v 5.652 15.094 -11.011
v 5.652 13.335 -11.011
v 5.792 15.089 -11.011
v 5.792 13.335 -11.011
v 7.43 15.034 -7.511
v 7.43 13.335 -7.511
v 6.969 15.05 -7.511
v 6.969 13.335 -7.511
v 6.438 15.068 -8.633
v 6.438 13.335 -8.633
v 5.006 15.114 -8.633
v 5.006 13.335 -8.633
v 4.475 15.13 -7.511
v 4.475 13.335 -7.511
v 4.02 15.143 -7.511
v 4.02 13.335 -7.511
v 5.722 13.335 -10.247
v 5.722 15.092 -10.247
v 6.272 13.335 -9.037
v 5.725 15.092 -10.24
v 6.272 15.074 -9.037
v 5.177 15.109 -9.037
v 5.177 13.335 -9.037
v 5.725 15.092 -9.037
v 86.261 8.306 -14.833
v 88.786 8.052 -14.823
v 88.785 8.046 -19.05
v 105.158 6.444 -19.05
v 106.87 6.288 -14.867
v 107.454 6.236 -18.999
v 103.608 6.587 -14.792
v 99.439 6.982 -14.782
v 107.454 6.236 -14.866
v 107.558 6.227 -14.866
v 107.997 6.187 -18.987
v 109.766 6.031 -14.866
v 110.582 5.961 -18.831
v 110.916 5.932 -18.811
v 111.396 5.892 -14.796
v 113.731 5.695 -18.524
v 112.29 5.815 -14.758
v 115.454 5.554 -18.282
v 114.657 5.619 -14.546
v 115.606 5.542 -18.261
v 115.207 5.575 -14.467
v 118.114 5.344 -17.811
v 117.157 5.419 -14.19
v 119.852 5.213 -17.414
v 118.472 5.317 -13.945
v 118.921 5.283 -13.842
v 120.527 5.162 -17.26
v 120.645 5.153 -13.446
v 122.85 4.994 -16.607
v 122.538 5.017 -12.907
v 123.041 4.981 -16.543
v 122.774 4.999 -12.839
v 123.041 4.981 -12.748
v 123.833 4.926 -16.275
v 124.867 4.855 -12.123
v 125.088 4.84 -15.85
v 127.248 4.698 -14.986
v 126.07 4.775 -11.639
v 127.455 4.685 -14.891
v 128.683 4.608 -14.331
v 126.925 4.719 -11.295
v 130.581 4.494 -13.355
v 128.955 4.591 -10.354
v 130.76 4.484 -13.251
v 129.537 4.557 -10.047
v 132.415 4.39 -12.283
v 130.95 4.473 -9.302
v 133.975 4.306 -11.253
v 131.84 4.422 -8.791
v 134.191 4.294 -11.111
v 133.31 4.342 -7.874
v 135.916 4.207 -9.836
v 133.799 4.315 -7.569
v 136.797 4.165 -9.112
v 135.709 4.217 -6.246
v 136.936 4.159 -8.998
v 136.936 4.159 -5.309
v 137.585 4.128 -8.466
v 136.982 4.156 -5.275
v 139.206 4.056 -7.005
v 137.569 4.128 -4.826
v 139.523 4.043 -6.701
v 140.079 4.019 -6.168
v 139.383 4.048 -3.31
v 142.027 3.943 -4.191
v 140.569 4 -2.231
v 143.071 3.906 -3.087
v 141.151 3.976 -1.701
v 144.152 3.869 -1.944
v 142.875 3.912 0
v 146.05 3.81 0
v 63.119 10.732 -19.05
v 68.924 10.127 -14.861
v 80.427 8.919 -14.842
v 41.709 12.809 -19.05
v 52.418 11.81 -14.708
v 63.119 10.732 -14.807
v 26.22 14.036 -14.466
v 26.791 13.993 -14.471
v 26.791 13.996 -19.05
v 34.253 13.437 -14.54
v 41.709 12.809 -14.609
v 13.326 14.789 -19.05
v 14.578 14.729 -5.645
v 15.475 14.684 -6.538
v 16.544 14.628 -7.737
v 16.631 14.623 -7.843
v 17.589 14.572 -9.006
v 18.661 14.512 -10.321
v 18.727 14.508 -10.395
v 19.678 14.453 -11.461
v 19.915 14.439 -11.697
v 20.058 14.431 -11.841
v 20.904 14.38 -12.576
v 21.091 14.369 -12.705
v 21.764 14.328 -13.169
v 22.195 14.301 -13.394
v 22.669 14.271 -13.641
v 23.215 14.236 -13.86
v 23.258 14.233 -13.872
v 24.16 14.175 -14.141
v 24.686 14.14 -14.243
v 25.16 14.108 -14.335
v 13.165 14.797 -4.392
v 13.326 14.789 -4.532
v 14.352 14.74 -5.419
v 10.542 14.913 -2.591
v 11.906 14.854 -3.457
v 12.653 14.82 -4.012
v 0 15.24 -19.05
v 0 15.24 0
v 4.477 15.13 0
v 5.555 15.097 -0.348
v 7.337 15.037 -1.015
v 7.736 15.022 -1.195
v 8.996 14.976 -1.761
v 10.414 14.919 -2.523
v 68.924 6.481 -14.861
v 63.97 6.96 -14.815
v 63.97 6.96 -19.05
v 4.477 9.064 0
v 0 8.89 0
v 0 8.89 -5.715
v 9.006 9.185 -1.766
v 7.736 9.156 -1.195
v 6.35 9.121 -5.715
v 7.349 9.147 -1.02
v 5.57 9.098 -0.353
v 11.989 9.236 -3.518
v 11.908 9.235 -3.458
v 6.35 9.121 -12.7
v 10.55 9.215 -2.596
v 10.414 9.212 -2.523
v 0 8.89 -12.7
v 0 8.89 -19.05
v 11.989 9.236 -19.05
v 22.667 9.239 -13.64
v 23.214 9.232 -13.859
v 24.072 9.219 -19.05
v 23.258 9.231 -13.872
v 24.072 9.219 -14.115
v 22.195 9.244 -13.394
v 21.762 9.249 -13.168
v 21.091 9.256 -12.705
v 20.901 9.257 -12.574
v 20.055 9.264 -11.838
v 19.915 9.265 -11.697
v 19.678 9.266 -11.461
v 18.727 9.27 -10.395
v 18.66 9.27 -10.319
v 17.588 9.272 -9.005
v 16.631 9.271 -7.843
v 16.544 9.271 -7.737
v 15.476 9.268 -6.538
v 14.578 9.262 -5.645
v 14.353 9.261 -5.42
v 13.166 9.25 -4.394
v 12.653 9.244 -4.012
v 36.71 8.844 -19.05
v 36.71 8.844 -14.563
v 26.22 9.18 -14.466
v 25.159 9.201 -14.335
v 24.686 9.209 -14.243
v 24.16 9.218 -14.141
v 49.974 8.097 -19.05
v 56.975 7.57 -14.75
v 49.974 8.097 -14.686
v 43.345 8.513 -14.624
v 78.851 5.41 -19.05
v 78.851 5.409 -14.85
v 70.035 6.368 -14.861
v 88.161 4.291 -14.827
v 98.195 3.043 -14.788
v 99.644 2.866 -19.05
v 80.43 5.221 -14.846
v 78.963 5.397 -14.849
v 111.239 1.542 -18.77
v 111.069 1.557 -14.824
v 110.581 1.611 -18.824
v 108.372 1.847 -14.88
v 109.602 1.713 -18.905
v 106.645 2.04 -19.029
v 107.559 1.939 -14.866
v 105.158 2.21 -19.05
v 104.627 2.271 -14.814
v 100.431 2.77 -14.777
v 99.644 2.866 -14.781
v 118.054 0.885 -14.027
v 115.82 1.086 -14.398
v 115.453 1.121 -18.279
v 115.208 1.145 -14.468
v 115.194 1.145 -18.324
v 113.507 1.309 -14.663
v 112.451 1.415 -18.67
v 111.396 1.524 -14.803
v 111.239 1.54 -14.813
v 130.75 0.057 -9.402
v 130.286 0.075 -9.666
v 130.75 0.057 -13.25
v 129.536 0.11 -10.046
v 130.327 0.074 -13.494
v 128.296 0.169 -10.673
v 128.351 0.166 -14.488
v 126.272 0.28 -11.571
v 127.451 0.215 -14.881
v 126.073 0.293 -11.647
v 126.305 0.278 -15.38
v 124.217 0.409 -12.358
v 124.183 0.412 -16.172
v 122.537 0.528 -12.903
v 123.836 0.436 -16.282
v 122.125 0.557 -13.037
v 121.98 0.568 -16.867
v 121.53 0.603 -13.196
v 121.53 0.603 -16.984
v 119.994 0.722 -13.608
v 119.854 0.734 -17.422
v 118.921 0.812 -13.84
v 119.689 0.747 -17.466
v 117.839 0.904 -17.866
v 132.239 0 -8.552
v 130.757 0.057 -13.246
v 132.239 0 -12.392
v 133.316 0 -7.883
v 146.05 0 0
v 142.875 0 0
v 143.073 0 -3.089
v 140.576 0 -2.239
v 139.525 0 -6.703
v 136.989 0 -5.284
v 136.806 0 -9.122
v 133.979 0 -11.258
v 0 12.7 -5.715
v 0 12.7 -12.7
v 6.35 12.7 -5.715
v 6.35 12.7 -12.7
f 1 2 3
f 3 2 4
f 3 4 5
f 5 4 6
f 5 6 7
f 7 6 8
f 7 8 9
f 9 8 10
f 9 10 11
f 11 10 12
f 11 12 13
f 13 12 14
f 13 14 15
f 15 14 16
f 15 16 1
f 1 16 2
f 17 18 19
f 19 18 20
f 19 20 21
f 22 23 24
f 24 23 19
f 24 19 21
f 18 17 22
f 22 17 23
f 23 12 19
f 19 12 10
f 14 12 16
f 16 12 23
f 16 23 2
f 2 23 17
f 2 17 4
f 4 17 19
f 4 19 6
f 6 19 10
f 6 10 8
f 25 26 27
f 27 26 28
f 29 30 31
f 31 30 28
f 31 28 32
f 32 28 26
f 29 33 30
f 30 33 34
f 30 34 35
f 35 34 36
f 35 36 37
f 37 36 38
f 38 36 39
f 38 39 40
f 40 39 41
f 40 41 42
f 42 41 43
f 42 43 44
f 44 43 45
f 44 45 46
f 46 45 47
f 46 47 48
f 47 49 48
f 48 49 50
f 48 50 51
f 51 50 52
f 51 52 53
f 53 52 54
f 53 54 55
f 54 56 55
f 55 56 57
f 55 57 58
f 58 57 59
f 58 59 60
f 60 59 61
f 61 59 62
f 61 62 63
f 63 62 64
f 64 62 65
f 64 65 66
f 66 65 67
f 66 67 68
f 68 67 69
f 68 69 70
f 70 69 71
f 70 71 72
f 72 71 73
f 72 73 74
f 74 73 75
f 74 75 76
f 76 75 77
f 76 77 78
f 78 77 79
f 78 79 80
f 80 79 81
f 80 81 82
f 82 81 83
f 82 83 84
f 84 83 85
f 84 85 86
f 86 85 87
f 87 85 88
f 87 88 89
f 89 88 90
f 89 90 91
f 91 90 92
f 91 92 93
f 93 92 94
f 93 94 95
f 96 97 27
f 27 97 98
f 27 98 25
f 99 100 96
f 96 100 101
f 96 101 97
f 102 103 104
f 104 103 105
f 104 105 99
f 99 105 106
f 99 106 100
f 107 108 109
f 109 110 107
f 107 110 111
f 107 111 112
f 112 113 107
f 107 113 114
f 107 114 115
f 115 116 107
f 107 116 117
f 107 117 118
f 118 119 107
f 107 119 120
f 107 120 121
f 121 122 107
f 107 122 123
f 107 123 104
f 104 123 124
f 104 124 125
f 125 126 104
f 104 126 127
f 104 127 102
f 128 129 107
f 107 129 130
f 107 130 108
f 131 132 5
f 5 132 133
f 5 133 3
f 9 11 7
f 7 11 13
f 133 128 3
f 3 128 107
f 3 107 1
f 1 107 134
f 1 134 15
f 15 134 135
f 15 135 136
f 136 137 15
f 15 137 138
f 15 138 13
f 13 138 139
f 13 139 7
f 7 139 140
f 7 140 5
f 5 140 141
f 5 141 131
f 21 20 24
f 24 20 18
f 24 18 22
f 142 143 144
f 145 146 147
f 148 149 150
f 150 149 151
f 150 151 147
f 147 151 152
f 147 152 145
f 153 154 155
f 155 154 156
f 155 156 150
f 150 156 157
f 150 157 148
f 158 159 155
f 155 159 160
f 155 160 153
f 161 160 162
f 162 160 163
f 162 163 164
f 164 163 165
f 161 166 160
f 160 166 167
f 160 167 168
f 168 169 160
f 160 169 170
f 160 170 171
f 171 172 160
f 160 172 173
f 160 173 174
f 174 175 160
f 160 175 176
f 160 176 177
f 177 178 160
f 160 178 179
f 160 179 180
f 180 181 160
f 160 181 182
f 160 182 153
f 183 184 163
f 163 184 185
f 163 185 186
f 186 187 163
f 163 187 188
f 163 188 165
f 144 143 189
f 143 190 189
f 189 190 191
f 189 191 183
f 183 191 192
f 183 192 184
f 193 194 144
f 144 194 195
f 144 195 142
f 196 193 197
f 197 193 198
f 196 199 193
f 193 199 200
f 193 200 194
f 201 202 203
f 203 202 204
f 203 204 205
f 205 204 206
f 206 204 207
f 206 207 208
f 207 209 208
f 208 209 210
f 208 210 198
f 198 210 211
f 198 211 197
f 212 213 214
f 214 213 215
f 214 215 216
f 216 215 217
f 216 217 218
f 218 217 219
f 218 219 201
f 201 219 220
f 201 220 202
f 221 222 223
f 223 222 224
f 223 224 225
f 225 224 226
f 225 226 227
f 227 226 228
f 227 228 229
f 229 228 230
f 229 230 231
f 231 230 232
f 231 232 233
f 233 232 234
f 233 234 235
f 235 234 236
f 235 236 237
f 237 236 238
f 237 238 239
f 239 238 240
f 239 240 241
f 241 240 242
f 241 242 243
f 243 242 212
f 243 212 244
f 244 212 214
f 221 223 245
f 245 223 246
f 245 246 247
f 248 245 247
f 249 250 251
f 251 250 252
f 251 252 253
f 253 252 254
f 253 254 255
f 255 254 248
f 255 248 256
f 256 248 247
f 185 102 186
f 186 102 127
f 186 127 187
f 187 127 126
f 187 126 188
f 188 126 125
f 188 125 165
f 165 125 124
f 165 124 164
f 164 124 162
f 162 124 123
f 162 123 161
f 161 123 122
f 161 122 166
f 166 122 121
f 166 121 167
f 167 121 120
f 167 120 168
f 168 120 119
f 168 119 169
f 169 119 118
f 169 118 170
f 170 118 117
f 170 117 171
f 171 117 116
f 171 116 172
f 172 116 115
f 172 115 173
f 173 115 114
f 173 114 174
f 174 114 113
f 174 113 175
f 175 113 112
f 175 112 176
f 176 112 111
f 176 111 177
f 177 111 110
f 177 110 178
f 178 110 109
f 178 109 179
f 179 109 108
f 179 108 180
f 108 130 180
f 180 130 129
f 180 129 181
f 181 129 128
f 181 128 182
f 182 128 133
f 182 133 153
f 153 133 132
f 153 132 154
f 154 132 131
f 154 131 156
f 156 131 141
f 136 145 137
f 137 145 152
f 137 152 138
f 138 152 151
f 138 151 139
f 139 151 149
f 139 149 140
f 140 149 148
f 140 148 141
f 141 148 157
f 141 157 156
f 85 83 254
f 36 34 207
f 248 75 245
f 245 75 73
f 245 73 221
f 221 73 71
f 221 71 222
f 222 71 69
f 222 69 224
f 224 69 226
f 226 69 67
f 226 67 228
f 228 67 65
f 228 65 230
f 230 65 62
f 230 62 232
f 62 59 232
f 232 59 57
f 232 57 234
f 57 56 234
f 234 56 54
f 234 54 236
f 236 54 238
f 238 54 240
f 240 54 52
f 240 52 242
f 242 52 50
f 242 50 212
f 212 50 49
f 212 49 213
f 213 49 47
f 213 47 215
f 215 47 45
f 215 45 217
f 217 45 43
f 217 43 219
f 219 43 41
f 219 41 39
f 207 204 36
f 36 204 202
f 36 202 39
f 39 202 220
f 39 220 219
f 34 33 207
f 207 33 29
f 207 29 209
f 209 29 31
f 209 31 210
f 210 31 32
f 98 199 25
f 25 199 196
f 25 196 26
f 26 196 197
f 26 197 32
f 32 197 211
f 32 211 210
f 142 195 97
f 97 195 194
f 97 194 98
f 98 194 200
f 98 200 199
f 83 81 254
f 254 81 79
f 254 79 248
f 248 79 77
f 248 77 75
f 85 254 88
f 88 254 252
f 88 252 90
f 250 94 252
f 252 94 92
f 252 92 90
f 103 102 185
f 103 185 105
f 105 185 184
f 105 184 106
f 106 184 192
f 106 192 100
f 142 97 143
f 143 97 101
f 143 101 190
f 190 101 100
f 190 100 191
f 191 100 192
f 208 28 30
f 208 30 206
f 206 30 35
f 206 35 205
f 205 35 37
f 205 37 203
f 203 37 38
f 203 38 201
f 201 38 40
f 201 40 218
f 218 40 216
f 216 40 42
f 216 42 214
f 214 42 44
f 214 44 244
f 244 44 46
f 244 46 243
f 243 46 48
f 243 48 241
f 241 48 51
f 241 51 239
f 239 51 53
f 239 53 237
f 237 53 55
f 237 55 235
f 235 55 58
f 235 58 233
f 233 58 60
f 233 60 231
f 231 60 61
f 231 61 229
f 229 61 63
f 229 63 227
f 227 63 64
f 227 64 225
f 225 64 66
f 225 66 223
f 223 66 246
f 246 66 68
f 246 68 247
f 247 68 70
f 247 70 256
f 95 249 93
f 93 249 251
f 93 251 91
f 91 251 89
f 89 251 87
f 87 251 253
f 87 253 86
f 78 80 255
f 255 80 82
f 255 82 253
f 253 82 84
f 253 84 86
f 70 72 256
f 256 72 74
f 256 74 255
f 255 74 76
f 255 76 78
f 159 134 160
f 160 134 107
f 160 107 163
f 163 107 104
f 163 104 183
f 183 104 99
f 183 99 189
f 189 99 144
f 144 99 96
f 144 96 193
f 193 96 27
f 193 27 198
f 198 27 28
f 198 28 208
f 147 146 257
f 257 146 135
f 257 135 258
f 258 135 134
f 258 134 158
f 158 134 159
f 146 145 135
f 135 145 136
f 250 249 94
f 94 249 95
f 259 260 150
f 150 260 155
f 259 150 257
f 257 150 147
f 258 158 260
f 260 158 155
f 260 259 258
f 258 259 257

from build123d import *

# Parameters (mm, degrees)
SKETCH1_W           = 146.05
SKETCH1_H           = 19.05
BOSS_EXTRUDE1_DEPTH = 15.24
CUT_EXTRUDE5_DEPTH  = 1.905
CUT_EXTRUDE2_DEPTH  = 19.05
CUT_EXTRUDE3_DEPTH  = 149.073504166
SKETCH5_W           = 6.985
SKETCH5_H           = 3.81
CUT_EXTRUDE4_DEPTH  = 6.35


with BuildPart() as part:
    # Sketch1 → Boss-Extrude1 (new body)
    with BuildSketch(Plane(origin=(0, 0, 0), x_dir=(1, 0, 0), z_dir=(0, 1, 0))):
        with Locations((73.025, 9.525)):
            Rectangle(SKETCH1_W, SKETCH1_H)
    extrude(amount=BOSS_EXTRUDE1_DEPTH)

    # Sketch6 → Cut-Extrude5 (cut)
    with BuildSketch(Plane(origin=(0, 15.24, 0), x_dir=(1, 0, 0), z_dir=(0, 1, 0))):
        Polygon((5.792025279, 11.011495693), (7.429845792, 7.511495693), (6.969208773, 7.511495693), (6.437758452, 8.633290564), (5.006067747, 8.633290564), (4.474617426, 7.511495693), (4.019589382, 7.511495693), (5.65180092, 11.011495693), align=None)
        Polygon((5.7219131, 10.246571814), (5.177141465, 9.037136718), (6.272293709, 9.037136718), align=None, mode=Mode.SUBTRACT)
    extrude(amount=-CUT_EXTRUDE5_DEPTH, mode=Mode.SUBTRACT)

    # Sketch4 → Cut-Extrude2 (cut)
    with BuildSketch(Plane(origin=(0, 15.24, 0), x_dir=(1, 0, 0), z_dir=(0, 1, 0))):
        with BuildLine():
            add(Edge.make_bspline(
                [(4.476723392, 0), (17.725756487, 4.043101895), (17.090749047, 12.999753789), (25.262791442, 14.373397692), (26.219517358, 14.465775476)],
                knots=[0, 0, 0, 0, 0.256127126, 0.284585695, 0.284585695, 0.284585695, 0.284585695], degree=3))
            Line((4.476723392, 0), (142.875, 0))
            add(Edge.make_bspline(
                [(68.923918907, 14.861089556), (81.075041449, 14.855684794), (98.246564786, 14.797098309), (108.068516517, 14.713978549), (127.226778846, 16.049688466), (142.875, 0)],
                knots=[0.488488537, 0.488488537, 0.488488537, 0.488488537, 0.629203286, 0.700744717, 1, 1, 1, 1], degree=3))
            Line((68.923918907, 14.861089556), (26.219517358, 14.465775476))
        make_face()
        with BuildLine():
            add(Edge.make_bspline(
                [(105.157866441, 19.05), (131.491281961, 18.918345897), (139.296835945, 6.588803862), (146.05, 0)],
                knots=[0.010622627, 0.010622627, 0.010622627, 0.010622627, 1, 1, 1, 1], degree=3))
            Line((146.05, 0), (146.05, 19.05))
            Line((146.05, 19.05), (105.157866441, 19.05))
        make_face()
    extrude(amount=-CUT_EXTRUDE2_DEPTH, mode=Mode.SUBTRACT)

    # Sketch3 → Cut-Extrude3 (cut, through all)
    with BuildSketch(Plane(origin=(0, 0, -19.05), x_dir=(-1, 0, 0), z_dir=(0, 0, -1))):
        with BuildLine():
            Line((0, 0), (0, 8.89))
            add(Edge.make_bspline(
                [(0, 8.89), (-26.792555724, 10.094357911), (-71.276383534, 7.213998552), (-114.960678795, 0.591225669), (-132.239266272, 0)],
                knots=[0, 0, 0, 0, 0.551607579, 0.905919639, 0.905919639, 0.905919639, 0.905919639], degree=3))
            Line((-132.239266272, 0), (0, 0))
        make_face()
        with BuildLine():
            add(Edge.make_bspline(
                [(0, 15.24), (-48.91510465, 14.281311131), (-97.188371336, 5.218004406), (-146.05, 3.81)],
                knots=[0, 0, 0, 0, 1, 1, 1, 1], degree=3))
            Line((0, 15.24), (-146.05, 15.24))
            Line((-146.05, 15.24), (-146.05, 3.81))
        make_face()
    extrude(amount=-CUT_EXTRUDE3_DEPTH, mode=Mode.SUBTRACT)

    # Sketch5 → Cut-Extrude4 (cut)
    with BuildSketch(Plane.ZY):
        with Locations((-9.2075, 10.795)):
            Rectangle(SKETCH5_W, SKETCH5_H)
    extrude(amount=-CUT_EXTRUDE4_DEPTH, mode=Mode.SUBTRACT)


solid = part.part
